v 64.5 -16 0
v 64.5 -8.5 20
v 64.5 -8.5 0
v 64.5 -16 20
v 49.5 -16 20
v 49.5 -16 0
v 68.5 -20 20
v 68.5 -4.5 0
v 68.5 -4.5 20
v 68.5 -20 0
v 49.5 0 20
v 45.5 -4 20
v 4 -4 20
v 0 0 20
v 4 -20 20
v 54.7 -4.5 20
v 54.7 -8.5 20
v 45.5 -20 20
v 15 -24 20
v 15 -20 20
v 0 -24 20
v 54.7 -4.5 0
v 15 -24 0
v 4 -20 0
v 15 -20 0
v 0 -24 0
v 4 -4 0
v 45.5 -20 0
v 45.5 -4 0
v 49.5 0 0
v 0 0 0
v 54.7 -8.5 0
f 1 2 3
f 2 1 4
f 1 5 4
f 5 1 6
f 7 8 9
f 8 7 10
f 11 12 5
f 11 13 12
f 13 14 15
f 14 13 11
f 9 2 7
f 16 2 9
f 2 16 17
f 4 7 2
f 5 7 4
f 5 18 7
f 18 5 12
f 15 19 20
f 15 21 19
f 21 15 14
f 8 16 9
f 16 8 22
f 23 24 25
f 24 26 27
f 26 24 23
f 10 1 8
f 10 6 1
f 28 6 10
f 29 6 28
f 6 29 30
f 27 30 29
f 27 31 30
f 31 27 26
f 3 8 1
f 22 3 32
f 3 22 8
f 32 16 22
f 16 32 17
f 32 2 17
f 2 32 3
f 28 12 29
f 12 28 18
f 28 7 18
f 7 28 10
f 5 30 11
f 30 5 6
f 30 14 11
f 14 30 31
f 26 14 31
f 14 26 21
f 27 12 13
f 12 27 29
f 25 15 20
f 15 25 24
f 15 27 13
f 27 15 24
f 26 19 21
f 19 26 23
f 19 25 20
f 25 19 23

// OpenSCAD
//turtleshell v3 ikea mount
rotate([90,0,0]){
cube([45.5,20,4]);
cube([4,20,20]);
translate([0,0,20]){
    cube([15,20,4]);
}
translate([45.5,0.0]){
    cube([4,20,16]);
    translate([0,0,16]){
        cube([23,20,4]);
        translate([19,0,-11.5]){
            cube([4,20,11.5]);
            translate([-9.8,0,0]){
                cube([9.8,20,4]);
            }
        }
    }
}
}
